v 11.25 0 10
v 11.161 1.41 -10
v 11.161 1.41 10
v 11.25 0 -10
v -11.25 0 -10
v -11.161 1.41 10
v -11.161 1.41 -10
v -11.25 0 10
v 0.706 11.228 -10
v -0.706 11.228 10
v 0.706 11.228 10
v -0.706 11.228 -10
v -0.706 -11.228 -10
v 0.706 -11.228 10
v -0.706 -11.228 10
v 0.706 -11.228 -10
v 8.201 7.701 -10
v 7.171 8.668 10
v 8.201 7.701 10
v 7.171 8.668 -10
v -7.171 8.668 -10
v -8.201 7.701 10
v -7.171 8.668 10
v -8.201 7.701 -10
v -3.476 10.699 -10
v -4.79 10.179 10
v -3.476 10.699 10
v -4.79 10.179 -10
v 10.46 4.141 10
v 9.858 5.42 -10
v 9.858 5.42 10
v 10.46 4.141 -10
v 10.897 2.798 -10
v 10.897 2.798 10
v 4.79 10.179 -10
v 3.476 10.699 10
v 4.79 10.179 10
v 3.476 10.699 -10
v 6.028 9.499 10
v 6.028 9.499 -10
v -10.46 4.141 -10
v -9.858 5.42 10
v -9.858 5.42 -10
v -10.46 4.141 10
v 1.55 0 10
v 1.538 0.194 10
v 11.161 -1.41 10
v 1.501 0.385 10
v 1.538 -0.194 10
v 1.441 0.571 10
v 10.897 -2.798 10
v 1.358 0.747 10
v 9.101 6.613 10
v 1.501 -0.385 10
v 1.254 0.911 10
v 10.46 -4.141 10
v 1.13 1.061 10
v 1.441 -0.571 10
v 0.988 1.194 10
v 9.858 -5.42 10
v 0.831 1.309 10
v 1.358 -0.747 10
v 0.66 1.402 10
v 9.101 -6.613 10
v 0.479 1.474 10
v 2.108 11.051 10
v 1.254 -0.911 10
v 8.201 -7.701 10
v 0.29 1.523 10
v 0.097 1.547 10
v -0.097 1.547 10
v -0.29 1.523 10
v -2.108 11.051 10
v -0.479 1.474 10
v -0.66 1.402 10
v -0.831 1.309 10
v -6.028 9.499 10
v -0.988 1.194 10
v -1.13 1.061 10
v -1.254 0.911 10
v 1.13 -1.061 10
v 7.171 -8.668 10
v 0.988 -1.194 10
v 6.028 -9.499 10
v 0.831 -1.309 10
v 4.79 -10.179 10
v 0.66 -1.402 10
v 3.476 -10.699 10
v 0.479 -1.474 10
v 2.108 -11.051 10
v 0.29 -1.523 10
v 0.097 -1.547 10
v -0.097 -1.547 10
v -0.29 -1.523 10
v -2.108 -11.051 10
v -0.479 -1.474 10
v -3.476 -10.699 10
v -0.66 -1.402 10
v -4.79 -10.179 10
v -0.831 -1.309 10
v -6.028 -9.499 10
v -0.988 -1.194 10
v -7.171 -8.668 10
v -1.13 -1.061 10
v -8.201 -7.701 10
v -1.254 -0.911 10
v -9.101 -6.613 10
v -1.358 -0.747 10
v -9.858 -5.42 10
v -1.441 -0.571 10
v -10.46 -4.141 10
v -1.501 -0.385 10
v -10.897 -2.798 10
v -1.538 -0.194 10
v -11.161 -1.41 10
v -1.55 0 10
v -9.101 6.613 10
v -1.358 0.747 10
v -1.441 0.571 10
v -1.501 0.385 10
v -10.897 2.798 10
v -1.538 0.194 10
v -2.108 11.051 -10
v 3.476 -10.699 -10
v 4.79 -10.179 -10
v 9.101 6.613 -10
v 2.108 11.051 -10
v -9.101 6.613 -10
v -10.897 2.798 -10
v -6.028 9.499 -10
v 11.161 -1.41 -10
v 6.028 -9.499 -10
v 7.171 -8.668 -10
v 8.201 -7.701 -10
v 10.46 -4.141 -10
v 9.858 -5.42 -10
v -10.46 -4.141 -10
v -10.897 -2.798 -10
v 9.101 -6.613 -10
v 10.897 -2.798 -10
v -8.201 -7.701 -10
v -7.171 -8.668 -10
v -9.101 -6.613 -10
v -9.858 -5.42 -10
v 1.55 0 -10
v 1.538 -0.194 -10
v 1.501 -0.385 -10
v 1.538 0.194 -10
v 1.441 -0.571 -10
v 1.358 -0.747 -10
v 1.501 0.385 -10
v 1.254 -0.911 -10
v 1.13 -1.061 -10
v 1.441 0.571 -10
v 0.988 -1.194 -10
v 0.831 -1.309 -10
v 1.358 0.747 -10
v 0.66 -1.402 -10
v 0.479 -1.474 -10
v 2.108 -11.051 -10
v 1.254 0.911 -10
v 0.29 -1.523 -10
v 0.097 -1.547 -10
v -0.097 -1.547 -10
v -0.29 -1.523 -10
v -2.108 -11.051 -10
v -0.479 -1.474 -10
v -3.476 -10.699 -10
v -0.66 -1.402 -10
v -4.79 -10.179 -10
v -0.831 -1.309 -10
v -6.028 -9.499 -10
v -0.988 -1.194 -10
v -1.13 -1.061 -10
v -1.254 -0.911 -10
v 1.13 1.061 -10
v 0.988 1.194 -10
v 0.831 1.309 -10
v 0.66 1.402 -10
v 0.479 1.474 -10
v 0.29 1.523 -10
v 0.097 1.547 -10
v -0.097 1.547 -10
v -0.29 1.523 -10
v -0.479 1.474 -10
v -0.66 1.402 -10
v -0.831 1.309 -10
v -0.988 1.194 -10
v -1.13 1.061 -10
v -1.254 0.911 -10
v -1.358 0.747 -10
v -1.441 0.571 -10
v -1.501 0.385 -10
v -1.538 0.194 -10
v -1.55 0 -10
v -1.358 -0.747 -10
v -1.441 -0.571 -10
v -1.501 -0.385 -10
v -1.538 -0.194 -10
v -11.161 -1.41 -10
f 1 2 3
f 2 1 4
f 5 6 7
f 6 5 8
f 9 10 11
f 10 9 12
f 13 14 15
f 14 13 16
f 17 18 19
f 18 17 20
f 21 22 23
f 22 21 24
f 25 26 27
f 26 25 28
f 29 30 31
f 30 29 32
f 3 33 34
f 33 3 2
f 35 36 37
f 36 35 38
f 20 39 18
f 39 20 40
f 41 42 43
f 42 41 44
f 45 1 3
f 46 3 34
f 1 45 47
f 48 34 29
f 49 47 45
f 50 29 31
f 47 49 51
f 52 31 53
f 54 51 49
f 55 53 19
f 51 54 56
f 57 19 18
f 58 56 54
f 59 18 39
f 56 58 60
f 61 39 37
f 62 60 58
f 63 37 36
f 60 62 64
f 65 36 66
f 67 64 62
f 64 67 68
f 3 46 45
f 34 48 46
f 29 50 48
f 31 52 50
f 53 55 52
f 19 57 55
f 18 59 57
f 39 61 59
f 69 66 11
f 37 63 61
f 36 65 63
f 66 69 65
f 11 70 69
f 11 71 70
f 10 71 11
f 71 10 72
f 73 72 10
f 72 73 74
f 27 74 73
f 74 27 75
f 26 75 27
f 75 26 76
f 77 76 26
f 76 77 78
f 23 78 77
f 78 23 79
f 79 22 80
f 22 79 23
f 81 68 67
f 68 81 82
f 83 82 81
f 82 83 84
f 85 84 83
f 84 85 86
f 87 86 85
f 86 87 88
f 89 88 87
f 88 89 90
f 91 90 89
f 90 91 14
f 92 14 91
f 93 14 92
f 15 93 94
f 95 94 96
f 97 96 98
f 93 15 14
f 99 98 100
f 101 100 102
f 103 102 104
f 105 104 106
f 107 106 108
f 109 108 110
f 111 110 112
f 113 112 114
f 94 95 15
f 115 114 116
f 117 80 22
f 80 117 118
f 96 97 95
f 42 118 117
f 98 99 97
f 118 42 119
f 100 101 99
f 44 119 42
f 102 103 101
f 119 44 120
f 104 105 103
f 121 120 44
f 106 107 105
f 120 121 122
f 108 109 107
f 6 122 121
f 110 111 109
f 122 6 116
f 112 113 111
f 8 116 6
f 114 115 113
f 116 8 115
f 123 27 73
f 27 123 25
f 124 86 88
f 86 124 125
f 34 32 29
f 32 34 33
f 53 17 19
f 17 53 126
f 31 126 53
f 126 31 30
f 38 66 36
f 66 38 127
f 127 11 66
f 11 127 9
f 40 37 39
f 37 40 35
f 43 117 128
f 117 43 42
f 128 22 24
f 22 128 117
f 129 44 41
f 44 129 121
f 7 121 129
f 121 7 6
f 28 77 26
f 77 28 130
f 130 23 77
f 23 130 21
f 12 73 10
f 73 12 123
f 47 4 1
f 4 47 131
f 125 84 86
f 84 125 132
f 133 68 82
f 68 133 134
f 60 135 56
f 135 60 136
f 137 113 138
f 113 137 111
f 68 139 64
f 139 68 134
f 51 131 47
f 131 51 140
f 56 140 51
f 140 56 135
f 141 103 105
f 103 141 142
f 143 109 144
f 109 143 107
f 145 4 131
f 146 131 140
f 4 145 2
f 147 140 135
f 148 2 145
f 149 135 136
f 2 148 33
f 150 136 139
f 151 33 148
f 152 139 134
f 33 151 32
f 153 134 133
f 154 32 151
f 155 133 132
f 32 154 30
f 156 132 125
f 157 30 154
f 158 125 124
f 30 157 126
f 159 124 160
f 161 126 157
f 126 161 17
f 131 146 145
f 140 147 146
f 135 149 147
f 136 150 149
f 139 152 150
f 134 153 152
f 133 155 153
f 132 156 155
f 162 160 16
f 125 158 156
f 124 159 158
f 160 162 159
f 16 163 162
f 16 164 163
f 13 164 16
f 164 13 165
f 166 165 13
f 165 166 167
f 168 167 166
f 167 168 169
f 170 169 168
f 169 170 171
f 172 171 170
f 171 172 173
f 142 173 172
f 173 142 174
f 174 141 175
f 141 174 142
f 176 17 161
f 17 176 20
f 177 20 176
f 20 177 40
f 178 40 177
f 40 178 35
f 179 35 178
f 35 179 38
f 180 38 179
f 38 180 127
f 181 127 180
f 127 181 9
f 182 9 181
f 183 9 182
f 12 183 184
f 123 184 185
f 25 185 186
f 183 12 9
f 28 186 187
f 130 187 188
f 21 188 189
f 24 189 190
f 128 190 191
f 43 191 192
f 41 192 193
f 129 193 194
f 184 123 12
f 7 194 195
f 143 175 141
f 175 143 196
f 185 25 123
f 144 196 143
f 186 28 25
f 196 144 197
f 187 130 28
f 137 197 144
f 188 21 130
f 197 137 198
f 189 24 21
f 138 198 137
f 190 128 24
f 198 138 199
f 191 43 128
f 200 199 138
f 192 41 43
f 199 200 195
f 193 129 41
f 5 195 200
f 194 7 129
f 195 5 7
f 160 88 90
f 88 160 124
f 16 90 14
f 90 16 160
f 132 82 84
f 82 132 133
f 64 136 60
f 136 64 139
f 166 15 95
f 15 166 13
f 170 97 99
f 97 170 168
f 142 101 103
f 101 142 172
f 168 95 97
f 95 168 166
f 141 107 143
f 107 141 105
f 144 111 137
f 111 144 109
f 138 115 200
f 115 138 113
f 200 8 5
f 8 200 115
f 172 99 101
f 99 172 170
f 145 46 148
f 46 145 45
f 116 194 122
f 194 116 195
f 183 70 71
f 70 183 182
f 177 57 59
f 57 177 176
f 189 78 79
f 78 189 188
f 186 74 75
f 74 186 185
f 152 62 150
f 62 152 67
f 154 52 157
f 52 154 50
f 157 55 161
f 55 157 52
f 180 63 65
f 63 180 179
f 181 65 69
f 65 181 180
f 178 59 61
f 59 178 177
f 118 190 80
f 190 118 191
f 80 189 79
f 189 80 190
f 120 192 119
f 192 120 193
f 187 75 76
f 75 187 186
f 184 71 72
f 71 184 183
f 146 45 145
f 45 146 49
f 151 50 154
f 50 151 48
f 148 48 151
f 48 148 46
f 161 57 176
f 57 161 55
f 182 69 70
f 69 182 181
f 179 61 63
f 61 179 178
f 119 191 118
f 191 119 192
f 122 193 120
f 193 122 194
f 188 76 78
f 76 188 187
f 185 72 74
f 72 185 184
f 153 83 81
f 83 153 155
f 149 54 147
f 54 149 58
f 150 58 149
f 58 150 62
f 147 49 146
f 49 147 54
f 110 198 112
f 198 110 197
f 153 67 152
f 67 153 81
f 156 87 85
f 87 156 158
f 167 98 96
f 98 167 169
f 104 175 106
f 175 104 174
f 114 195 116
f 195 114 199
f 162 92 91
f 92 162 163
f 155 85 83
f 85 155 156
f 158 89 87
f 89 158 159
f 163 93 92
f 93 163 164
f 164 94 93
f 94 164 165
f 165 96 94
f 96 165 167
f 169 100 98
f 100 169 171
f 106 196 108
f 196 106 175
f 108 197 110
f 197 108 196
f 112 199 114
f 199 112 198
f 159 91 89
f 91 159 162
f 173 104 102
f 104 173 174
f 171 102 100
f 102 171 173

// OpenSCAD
$fn = 50;


difference() {
	union() {
		translate(v = [0, 0, -10.0000000000]) {
			cylinder(h = 20, r = 11.2500000000);
		}
	}
	union() {
		translate(v = [0, 0, -100.0000000000]) {
			cylinder(h = 200, r = 1.5500000000);
		}
	}
}
